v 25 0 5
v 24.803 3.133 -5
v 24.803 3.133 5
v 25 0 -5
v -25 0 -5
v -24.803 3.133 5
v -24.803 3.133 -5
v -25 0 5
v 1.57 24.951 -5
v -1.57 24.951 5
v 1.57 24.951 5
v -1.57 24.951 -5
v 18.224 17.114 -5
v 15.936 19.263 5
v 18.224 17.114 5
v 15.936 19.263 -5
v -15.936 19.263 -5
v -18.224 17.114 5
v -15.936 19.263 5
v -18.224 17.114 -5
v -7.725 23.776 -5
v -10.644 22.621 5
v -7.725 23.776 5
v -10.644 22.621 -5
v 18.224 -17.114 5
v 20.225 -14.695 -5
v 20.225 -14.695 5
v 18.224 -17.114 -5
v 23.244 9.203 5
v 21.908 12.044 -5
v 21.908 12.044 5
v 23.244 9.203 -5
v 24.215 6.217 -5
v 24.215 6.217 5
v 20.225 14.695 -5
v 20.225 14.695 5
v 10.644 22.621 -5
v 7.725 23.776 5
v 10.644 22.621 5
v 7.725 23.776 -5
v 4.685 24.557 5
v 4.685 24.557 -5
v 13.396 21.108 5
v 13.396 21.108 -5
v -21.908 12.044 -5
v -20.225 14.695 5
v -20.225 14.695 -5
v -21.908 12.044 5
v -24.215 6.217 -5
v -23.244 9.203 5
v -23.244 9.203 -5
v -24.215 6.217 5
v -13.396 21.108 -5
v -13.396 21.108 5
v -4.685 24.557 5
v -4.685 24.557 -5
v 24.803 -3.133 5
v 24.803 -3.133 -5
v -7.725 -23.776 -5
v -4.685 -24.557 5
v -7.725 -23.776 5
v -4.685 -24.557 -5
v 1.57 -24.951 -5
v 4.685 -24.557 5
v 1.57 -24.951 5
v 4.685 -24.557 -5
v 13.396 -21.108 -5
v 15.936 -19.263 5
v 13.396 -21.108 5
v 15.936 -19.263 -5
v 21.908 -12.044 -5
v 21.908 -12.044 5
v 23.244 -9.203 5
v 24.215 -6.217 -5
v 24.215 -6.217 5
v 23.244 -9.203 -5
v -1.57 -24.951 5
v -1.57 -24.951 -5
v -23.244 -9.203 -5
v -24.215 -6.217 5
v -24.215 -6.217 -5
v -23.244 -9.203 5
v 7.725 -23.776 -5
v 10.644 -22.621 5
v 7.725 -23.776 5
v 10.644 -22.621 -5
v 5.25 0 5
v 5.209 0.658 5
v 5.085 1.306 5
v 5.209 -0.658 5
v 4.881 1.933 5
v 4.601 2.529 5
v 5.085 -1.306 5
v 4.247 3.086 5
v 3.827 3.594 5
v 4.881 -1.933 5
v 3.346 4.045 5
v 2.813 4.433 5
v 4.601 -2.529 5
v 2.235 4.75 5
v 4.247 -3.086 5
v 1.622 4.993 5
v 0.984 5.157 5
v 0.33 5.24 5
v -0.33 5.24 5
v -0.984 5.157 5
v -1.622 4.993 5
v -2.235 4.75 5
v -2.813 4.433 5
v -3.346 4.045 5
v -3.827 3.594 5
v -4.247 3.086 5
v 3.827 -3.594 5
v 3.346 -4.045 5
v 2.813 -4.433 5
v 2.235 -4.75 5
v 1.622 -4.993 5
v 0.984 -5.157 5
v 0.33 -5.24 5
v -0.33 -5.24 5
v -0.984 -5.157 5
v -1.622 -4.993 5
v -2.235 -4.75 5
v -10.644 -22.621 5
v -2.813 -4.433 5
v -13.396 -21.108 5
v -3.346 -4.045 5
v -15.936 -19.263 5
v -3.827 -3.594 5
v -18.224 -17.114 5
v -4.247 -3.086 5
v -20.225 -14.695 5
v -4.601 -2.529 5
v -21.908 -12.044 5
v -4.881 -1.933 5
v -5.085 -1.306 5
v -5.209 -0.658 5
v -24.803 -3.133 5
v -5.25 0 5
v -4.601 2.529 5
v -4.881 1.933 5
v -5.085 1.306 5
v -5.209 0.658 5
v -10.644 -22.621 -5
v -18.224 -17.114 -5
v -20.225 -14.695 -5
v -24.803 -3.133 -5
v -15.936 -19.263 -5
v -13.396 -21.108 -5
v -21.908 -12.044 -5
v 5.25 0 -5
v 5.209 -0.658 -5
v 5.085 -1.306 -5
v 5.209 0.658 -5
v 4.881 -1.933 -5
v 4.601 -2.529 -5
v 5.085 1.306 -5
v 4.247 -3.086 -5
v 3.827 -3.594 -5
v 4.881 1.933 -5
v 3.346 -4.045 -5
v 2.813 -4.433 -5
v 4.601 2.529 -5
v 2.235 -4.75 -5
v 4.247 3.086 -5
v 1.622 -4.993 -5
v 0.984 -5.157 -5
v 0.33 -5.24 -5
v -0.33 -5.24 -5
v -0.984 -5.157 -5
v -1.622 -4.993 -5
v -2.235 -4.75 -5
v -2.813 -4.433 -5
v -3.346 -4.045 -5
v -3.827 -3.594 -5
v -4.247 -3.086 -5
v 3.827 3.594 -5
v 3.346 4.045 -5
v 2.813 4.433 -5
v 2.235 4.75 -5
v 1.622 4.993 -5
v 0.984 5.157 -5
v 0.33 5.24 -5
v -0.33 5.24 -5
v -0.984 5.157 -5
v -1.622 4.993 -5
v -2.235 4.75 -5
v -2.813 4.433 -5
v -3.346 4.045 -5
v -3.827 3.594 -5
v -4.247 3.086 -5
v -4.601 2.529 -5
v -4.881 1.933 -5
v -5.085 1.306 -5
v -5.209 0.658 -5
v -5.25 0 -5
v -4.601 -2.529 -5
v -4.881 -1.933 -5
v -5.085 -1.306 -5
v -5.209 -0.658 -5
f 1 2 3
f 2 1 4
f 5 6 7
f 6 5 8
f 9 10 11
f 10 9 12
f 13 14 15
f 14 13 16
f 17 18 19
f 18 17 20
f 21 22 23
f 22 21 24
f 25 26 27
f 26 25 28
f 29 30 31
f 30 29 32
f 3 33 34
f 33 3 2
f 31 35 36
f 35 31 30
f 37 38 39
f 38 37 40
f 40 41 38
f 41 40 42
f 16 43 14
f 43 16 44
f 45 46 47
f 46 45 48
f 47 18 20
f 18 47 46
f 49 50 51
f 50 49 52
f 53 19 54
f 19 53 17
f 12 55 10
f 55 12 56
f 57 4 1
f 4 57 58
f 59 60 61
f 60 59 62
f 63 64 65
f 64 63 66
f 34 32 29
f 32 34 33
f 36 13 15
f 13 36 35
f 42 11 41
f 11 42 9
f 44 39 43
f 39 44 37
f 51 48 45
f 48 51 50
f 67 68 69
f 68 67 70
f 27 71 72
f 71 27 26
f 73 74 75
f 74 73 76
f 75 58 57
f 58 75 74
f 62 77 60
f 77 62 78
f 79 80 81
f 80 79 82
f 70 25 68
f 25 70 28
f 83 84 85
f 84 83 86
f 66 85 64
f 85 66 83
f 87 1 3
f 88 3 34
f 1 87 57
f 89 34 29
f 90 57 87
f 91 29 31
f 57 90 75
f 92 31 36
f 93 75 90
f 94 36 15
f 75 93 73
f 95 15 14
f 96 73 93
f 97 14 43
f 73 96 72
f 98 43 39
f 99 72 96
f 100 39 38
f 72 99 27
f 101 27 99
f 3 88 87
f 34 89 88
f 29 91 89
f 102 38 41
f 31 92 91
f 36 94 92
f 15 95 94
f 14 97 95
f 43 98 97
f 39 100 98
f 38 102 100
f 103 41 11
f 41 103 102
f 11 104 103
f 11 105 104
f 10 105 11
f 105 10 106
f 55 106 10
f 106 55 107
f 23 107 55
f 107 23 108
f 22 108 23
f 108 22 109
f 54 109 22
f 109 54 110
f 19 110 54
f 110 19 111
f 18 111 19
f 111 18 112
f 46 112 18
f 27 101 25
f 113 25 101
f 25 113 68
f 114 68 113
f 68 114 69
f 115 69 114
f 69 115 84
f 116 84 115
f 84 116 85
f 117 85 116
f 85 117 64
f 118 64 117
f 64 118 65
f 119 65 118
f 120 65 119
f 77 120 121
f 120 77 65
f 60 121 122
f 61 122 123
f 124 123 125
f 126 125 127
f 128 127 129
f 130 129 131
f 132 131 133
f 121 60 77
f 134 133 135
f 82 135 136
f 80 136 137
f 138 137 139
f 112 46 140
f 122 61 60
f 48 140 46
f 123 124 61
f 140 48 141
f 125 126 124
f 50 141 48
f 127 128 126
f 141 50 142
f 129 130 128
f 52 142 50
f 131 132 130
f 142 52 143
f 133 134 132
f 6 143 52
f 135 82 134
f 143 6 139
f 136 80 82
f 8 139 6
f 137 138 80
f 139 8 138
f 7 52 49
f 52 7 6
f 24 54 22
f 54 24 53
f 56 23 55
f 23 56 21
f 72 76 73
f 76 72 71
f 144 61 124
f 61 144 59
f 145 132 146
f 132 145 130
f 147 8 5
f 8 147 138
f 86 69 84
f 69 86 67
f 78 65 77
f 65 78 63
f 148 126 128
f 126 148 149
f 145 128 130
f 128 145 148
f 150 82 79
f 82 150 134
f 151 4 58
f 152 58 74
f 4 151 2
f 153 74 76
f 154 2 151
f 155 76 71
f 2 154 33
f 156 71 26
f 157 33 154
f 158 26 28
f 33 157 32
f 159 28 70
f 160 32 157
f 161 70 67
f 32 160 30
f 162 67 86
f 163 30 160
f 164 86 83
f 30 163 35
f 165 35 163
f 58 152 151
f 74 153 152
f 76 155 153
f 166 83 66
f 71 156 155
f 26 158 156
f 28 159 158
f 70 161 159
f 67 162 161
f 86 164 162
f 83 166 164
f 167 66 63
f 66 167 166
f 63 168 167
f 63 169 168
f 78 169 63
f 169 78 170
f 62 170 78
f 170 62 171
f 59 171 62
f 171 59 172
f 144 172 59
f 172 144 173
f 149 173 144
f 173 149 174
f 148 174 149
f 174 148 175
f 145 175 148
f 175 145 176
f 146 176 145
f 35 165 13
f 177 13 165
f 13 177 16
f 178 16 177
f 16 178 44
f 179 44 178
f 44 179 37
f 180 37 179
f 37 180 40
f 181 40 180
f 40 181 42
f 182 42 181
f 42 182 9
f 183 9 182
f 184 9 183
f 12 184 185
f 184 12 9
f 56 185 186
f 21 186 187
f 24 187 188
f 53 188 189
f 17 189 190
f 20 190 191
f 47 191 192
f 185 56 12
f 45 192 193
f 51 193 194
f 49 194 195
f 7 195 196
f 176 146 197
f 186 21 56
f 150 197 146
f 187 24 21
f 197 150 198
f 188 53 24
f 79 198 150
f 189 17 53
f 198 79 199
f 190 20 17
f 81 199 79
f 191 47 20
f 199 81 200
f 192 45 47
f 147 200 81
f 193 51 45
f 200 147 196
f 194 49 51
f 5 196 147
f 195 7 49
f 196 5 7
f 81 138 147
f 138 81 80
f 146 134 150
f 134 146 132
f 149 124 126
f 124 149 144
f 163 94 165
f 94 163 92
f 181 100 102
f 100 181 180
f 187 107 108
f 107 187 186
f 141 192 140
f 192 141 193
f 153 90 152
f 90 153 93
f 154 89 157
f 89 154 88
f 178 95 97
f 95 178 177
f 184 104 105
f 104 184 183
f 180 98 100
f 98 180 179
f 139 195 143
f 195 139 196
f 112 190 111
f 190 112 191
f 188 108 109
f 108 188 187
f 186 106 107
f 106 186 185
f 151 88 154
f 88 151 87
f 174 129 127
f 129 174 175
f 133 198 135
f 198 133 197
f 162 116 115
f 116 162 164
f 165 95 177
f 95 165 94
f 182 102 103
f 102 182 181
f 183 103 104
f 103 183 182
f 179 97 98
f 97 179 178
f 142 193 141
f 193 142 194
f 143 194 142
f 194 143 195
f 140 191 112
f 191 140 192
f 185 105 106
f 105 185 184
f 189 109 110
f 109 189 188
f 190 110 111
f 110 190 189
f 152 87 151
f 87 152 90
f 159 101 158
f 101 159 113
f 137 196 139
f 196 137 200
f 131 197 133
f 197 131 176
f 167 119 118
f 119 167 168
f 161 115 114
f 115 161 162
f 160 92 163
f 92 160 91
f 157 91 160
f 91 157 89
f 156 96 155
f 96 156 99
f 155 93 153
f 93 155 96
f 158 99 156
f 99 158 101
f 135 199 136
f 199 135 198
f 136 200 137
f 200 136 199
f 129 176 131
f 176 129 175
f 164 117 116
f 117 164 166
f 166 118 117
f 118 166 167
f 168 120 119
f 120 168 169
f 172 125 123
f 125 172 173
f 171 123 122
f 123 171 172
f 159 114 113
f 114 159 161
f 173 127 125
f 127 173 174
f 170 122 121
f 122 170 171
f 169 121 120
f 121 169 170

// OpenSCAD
$fn = 50;


difference() {
	union() {
		translate(v = [0, 0, -5.0000000000]) {
			cylinder(h = 10, r = 25.0000000000);
		}
	}
	union() {
		translate(v = [0, 0, -100.0000000000]) {
			cylinder(h = 200, r = 5.2500000000);
		}
	}
}
